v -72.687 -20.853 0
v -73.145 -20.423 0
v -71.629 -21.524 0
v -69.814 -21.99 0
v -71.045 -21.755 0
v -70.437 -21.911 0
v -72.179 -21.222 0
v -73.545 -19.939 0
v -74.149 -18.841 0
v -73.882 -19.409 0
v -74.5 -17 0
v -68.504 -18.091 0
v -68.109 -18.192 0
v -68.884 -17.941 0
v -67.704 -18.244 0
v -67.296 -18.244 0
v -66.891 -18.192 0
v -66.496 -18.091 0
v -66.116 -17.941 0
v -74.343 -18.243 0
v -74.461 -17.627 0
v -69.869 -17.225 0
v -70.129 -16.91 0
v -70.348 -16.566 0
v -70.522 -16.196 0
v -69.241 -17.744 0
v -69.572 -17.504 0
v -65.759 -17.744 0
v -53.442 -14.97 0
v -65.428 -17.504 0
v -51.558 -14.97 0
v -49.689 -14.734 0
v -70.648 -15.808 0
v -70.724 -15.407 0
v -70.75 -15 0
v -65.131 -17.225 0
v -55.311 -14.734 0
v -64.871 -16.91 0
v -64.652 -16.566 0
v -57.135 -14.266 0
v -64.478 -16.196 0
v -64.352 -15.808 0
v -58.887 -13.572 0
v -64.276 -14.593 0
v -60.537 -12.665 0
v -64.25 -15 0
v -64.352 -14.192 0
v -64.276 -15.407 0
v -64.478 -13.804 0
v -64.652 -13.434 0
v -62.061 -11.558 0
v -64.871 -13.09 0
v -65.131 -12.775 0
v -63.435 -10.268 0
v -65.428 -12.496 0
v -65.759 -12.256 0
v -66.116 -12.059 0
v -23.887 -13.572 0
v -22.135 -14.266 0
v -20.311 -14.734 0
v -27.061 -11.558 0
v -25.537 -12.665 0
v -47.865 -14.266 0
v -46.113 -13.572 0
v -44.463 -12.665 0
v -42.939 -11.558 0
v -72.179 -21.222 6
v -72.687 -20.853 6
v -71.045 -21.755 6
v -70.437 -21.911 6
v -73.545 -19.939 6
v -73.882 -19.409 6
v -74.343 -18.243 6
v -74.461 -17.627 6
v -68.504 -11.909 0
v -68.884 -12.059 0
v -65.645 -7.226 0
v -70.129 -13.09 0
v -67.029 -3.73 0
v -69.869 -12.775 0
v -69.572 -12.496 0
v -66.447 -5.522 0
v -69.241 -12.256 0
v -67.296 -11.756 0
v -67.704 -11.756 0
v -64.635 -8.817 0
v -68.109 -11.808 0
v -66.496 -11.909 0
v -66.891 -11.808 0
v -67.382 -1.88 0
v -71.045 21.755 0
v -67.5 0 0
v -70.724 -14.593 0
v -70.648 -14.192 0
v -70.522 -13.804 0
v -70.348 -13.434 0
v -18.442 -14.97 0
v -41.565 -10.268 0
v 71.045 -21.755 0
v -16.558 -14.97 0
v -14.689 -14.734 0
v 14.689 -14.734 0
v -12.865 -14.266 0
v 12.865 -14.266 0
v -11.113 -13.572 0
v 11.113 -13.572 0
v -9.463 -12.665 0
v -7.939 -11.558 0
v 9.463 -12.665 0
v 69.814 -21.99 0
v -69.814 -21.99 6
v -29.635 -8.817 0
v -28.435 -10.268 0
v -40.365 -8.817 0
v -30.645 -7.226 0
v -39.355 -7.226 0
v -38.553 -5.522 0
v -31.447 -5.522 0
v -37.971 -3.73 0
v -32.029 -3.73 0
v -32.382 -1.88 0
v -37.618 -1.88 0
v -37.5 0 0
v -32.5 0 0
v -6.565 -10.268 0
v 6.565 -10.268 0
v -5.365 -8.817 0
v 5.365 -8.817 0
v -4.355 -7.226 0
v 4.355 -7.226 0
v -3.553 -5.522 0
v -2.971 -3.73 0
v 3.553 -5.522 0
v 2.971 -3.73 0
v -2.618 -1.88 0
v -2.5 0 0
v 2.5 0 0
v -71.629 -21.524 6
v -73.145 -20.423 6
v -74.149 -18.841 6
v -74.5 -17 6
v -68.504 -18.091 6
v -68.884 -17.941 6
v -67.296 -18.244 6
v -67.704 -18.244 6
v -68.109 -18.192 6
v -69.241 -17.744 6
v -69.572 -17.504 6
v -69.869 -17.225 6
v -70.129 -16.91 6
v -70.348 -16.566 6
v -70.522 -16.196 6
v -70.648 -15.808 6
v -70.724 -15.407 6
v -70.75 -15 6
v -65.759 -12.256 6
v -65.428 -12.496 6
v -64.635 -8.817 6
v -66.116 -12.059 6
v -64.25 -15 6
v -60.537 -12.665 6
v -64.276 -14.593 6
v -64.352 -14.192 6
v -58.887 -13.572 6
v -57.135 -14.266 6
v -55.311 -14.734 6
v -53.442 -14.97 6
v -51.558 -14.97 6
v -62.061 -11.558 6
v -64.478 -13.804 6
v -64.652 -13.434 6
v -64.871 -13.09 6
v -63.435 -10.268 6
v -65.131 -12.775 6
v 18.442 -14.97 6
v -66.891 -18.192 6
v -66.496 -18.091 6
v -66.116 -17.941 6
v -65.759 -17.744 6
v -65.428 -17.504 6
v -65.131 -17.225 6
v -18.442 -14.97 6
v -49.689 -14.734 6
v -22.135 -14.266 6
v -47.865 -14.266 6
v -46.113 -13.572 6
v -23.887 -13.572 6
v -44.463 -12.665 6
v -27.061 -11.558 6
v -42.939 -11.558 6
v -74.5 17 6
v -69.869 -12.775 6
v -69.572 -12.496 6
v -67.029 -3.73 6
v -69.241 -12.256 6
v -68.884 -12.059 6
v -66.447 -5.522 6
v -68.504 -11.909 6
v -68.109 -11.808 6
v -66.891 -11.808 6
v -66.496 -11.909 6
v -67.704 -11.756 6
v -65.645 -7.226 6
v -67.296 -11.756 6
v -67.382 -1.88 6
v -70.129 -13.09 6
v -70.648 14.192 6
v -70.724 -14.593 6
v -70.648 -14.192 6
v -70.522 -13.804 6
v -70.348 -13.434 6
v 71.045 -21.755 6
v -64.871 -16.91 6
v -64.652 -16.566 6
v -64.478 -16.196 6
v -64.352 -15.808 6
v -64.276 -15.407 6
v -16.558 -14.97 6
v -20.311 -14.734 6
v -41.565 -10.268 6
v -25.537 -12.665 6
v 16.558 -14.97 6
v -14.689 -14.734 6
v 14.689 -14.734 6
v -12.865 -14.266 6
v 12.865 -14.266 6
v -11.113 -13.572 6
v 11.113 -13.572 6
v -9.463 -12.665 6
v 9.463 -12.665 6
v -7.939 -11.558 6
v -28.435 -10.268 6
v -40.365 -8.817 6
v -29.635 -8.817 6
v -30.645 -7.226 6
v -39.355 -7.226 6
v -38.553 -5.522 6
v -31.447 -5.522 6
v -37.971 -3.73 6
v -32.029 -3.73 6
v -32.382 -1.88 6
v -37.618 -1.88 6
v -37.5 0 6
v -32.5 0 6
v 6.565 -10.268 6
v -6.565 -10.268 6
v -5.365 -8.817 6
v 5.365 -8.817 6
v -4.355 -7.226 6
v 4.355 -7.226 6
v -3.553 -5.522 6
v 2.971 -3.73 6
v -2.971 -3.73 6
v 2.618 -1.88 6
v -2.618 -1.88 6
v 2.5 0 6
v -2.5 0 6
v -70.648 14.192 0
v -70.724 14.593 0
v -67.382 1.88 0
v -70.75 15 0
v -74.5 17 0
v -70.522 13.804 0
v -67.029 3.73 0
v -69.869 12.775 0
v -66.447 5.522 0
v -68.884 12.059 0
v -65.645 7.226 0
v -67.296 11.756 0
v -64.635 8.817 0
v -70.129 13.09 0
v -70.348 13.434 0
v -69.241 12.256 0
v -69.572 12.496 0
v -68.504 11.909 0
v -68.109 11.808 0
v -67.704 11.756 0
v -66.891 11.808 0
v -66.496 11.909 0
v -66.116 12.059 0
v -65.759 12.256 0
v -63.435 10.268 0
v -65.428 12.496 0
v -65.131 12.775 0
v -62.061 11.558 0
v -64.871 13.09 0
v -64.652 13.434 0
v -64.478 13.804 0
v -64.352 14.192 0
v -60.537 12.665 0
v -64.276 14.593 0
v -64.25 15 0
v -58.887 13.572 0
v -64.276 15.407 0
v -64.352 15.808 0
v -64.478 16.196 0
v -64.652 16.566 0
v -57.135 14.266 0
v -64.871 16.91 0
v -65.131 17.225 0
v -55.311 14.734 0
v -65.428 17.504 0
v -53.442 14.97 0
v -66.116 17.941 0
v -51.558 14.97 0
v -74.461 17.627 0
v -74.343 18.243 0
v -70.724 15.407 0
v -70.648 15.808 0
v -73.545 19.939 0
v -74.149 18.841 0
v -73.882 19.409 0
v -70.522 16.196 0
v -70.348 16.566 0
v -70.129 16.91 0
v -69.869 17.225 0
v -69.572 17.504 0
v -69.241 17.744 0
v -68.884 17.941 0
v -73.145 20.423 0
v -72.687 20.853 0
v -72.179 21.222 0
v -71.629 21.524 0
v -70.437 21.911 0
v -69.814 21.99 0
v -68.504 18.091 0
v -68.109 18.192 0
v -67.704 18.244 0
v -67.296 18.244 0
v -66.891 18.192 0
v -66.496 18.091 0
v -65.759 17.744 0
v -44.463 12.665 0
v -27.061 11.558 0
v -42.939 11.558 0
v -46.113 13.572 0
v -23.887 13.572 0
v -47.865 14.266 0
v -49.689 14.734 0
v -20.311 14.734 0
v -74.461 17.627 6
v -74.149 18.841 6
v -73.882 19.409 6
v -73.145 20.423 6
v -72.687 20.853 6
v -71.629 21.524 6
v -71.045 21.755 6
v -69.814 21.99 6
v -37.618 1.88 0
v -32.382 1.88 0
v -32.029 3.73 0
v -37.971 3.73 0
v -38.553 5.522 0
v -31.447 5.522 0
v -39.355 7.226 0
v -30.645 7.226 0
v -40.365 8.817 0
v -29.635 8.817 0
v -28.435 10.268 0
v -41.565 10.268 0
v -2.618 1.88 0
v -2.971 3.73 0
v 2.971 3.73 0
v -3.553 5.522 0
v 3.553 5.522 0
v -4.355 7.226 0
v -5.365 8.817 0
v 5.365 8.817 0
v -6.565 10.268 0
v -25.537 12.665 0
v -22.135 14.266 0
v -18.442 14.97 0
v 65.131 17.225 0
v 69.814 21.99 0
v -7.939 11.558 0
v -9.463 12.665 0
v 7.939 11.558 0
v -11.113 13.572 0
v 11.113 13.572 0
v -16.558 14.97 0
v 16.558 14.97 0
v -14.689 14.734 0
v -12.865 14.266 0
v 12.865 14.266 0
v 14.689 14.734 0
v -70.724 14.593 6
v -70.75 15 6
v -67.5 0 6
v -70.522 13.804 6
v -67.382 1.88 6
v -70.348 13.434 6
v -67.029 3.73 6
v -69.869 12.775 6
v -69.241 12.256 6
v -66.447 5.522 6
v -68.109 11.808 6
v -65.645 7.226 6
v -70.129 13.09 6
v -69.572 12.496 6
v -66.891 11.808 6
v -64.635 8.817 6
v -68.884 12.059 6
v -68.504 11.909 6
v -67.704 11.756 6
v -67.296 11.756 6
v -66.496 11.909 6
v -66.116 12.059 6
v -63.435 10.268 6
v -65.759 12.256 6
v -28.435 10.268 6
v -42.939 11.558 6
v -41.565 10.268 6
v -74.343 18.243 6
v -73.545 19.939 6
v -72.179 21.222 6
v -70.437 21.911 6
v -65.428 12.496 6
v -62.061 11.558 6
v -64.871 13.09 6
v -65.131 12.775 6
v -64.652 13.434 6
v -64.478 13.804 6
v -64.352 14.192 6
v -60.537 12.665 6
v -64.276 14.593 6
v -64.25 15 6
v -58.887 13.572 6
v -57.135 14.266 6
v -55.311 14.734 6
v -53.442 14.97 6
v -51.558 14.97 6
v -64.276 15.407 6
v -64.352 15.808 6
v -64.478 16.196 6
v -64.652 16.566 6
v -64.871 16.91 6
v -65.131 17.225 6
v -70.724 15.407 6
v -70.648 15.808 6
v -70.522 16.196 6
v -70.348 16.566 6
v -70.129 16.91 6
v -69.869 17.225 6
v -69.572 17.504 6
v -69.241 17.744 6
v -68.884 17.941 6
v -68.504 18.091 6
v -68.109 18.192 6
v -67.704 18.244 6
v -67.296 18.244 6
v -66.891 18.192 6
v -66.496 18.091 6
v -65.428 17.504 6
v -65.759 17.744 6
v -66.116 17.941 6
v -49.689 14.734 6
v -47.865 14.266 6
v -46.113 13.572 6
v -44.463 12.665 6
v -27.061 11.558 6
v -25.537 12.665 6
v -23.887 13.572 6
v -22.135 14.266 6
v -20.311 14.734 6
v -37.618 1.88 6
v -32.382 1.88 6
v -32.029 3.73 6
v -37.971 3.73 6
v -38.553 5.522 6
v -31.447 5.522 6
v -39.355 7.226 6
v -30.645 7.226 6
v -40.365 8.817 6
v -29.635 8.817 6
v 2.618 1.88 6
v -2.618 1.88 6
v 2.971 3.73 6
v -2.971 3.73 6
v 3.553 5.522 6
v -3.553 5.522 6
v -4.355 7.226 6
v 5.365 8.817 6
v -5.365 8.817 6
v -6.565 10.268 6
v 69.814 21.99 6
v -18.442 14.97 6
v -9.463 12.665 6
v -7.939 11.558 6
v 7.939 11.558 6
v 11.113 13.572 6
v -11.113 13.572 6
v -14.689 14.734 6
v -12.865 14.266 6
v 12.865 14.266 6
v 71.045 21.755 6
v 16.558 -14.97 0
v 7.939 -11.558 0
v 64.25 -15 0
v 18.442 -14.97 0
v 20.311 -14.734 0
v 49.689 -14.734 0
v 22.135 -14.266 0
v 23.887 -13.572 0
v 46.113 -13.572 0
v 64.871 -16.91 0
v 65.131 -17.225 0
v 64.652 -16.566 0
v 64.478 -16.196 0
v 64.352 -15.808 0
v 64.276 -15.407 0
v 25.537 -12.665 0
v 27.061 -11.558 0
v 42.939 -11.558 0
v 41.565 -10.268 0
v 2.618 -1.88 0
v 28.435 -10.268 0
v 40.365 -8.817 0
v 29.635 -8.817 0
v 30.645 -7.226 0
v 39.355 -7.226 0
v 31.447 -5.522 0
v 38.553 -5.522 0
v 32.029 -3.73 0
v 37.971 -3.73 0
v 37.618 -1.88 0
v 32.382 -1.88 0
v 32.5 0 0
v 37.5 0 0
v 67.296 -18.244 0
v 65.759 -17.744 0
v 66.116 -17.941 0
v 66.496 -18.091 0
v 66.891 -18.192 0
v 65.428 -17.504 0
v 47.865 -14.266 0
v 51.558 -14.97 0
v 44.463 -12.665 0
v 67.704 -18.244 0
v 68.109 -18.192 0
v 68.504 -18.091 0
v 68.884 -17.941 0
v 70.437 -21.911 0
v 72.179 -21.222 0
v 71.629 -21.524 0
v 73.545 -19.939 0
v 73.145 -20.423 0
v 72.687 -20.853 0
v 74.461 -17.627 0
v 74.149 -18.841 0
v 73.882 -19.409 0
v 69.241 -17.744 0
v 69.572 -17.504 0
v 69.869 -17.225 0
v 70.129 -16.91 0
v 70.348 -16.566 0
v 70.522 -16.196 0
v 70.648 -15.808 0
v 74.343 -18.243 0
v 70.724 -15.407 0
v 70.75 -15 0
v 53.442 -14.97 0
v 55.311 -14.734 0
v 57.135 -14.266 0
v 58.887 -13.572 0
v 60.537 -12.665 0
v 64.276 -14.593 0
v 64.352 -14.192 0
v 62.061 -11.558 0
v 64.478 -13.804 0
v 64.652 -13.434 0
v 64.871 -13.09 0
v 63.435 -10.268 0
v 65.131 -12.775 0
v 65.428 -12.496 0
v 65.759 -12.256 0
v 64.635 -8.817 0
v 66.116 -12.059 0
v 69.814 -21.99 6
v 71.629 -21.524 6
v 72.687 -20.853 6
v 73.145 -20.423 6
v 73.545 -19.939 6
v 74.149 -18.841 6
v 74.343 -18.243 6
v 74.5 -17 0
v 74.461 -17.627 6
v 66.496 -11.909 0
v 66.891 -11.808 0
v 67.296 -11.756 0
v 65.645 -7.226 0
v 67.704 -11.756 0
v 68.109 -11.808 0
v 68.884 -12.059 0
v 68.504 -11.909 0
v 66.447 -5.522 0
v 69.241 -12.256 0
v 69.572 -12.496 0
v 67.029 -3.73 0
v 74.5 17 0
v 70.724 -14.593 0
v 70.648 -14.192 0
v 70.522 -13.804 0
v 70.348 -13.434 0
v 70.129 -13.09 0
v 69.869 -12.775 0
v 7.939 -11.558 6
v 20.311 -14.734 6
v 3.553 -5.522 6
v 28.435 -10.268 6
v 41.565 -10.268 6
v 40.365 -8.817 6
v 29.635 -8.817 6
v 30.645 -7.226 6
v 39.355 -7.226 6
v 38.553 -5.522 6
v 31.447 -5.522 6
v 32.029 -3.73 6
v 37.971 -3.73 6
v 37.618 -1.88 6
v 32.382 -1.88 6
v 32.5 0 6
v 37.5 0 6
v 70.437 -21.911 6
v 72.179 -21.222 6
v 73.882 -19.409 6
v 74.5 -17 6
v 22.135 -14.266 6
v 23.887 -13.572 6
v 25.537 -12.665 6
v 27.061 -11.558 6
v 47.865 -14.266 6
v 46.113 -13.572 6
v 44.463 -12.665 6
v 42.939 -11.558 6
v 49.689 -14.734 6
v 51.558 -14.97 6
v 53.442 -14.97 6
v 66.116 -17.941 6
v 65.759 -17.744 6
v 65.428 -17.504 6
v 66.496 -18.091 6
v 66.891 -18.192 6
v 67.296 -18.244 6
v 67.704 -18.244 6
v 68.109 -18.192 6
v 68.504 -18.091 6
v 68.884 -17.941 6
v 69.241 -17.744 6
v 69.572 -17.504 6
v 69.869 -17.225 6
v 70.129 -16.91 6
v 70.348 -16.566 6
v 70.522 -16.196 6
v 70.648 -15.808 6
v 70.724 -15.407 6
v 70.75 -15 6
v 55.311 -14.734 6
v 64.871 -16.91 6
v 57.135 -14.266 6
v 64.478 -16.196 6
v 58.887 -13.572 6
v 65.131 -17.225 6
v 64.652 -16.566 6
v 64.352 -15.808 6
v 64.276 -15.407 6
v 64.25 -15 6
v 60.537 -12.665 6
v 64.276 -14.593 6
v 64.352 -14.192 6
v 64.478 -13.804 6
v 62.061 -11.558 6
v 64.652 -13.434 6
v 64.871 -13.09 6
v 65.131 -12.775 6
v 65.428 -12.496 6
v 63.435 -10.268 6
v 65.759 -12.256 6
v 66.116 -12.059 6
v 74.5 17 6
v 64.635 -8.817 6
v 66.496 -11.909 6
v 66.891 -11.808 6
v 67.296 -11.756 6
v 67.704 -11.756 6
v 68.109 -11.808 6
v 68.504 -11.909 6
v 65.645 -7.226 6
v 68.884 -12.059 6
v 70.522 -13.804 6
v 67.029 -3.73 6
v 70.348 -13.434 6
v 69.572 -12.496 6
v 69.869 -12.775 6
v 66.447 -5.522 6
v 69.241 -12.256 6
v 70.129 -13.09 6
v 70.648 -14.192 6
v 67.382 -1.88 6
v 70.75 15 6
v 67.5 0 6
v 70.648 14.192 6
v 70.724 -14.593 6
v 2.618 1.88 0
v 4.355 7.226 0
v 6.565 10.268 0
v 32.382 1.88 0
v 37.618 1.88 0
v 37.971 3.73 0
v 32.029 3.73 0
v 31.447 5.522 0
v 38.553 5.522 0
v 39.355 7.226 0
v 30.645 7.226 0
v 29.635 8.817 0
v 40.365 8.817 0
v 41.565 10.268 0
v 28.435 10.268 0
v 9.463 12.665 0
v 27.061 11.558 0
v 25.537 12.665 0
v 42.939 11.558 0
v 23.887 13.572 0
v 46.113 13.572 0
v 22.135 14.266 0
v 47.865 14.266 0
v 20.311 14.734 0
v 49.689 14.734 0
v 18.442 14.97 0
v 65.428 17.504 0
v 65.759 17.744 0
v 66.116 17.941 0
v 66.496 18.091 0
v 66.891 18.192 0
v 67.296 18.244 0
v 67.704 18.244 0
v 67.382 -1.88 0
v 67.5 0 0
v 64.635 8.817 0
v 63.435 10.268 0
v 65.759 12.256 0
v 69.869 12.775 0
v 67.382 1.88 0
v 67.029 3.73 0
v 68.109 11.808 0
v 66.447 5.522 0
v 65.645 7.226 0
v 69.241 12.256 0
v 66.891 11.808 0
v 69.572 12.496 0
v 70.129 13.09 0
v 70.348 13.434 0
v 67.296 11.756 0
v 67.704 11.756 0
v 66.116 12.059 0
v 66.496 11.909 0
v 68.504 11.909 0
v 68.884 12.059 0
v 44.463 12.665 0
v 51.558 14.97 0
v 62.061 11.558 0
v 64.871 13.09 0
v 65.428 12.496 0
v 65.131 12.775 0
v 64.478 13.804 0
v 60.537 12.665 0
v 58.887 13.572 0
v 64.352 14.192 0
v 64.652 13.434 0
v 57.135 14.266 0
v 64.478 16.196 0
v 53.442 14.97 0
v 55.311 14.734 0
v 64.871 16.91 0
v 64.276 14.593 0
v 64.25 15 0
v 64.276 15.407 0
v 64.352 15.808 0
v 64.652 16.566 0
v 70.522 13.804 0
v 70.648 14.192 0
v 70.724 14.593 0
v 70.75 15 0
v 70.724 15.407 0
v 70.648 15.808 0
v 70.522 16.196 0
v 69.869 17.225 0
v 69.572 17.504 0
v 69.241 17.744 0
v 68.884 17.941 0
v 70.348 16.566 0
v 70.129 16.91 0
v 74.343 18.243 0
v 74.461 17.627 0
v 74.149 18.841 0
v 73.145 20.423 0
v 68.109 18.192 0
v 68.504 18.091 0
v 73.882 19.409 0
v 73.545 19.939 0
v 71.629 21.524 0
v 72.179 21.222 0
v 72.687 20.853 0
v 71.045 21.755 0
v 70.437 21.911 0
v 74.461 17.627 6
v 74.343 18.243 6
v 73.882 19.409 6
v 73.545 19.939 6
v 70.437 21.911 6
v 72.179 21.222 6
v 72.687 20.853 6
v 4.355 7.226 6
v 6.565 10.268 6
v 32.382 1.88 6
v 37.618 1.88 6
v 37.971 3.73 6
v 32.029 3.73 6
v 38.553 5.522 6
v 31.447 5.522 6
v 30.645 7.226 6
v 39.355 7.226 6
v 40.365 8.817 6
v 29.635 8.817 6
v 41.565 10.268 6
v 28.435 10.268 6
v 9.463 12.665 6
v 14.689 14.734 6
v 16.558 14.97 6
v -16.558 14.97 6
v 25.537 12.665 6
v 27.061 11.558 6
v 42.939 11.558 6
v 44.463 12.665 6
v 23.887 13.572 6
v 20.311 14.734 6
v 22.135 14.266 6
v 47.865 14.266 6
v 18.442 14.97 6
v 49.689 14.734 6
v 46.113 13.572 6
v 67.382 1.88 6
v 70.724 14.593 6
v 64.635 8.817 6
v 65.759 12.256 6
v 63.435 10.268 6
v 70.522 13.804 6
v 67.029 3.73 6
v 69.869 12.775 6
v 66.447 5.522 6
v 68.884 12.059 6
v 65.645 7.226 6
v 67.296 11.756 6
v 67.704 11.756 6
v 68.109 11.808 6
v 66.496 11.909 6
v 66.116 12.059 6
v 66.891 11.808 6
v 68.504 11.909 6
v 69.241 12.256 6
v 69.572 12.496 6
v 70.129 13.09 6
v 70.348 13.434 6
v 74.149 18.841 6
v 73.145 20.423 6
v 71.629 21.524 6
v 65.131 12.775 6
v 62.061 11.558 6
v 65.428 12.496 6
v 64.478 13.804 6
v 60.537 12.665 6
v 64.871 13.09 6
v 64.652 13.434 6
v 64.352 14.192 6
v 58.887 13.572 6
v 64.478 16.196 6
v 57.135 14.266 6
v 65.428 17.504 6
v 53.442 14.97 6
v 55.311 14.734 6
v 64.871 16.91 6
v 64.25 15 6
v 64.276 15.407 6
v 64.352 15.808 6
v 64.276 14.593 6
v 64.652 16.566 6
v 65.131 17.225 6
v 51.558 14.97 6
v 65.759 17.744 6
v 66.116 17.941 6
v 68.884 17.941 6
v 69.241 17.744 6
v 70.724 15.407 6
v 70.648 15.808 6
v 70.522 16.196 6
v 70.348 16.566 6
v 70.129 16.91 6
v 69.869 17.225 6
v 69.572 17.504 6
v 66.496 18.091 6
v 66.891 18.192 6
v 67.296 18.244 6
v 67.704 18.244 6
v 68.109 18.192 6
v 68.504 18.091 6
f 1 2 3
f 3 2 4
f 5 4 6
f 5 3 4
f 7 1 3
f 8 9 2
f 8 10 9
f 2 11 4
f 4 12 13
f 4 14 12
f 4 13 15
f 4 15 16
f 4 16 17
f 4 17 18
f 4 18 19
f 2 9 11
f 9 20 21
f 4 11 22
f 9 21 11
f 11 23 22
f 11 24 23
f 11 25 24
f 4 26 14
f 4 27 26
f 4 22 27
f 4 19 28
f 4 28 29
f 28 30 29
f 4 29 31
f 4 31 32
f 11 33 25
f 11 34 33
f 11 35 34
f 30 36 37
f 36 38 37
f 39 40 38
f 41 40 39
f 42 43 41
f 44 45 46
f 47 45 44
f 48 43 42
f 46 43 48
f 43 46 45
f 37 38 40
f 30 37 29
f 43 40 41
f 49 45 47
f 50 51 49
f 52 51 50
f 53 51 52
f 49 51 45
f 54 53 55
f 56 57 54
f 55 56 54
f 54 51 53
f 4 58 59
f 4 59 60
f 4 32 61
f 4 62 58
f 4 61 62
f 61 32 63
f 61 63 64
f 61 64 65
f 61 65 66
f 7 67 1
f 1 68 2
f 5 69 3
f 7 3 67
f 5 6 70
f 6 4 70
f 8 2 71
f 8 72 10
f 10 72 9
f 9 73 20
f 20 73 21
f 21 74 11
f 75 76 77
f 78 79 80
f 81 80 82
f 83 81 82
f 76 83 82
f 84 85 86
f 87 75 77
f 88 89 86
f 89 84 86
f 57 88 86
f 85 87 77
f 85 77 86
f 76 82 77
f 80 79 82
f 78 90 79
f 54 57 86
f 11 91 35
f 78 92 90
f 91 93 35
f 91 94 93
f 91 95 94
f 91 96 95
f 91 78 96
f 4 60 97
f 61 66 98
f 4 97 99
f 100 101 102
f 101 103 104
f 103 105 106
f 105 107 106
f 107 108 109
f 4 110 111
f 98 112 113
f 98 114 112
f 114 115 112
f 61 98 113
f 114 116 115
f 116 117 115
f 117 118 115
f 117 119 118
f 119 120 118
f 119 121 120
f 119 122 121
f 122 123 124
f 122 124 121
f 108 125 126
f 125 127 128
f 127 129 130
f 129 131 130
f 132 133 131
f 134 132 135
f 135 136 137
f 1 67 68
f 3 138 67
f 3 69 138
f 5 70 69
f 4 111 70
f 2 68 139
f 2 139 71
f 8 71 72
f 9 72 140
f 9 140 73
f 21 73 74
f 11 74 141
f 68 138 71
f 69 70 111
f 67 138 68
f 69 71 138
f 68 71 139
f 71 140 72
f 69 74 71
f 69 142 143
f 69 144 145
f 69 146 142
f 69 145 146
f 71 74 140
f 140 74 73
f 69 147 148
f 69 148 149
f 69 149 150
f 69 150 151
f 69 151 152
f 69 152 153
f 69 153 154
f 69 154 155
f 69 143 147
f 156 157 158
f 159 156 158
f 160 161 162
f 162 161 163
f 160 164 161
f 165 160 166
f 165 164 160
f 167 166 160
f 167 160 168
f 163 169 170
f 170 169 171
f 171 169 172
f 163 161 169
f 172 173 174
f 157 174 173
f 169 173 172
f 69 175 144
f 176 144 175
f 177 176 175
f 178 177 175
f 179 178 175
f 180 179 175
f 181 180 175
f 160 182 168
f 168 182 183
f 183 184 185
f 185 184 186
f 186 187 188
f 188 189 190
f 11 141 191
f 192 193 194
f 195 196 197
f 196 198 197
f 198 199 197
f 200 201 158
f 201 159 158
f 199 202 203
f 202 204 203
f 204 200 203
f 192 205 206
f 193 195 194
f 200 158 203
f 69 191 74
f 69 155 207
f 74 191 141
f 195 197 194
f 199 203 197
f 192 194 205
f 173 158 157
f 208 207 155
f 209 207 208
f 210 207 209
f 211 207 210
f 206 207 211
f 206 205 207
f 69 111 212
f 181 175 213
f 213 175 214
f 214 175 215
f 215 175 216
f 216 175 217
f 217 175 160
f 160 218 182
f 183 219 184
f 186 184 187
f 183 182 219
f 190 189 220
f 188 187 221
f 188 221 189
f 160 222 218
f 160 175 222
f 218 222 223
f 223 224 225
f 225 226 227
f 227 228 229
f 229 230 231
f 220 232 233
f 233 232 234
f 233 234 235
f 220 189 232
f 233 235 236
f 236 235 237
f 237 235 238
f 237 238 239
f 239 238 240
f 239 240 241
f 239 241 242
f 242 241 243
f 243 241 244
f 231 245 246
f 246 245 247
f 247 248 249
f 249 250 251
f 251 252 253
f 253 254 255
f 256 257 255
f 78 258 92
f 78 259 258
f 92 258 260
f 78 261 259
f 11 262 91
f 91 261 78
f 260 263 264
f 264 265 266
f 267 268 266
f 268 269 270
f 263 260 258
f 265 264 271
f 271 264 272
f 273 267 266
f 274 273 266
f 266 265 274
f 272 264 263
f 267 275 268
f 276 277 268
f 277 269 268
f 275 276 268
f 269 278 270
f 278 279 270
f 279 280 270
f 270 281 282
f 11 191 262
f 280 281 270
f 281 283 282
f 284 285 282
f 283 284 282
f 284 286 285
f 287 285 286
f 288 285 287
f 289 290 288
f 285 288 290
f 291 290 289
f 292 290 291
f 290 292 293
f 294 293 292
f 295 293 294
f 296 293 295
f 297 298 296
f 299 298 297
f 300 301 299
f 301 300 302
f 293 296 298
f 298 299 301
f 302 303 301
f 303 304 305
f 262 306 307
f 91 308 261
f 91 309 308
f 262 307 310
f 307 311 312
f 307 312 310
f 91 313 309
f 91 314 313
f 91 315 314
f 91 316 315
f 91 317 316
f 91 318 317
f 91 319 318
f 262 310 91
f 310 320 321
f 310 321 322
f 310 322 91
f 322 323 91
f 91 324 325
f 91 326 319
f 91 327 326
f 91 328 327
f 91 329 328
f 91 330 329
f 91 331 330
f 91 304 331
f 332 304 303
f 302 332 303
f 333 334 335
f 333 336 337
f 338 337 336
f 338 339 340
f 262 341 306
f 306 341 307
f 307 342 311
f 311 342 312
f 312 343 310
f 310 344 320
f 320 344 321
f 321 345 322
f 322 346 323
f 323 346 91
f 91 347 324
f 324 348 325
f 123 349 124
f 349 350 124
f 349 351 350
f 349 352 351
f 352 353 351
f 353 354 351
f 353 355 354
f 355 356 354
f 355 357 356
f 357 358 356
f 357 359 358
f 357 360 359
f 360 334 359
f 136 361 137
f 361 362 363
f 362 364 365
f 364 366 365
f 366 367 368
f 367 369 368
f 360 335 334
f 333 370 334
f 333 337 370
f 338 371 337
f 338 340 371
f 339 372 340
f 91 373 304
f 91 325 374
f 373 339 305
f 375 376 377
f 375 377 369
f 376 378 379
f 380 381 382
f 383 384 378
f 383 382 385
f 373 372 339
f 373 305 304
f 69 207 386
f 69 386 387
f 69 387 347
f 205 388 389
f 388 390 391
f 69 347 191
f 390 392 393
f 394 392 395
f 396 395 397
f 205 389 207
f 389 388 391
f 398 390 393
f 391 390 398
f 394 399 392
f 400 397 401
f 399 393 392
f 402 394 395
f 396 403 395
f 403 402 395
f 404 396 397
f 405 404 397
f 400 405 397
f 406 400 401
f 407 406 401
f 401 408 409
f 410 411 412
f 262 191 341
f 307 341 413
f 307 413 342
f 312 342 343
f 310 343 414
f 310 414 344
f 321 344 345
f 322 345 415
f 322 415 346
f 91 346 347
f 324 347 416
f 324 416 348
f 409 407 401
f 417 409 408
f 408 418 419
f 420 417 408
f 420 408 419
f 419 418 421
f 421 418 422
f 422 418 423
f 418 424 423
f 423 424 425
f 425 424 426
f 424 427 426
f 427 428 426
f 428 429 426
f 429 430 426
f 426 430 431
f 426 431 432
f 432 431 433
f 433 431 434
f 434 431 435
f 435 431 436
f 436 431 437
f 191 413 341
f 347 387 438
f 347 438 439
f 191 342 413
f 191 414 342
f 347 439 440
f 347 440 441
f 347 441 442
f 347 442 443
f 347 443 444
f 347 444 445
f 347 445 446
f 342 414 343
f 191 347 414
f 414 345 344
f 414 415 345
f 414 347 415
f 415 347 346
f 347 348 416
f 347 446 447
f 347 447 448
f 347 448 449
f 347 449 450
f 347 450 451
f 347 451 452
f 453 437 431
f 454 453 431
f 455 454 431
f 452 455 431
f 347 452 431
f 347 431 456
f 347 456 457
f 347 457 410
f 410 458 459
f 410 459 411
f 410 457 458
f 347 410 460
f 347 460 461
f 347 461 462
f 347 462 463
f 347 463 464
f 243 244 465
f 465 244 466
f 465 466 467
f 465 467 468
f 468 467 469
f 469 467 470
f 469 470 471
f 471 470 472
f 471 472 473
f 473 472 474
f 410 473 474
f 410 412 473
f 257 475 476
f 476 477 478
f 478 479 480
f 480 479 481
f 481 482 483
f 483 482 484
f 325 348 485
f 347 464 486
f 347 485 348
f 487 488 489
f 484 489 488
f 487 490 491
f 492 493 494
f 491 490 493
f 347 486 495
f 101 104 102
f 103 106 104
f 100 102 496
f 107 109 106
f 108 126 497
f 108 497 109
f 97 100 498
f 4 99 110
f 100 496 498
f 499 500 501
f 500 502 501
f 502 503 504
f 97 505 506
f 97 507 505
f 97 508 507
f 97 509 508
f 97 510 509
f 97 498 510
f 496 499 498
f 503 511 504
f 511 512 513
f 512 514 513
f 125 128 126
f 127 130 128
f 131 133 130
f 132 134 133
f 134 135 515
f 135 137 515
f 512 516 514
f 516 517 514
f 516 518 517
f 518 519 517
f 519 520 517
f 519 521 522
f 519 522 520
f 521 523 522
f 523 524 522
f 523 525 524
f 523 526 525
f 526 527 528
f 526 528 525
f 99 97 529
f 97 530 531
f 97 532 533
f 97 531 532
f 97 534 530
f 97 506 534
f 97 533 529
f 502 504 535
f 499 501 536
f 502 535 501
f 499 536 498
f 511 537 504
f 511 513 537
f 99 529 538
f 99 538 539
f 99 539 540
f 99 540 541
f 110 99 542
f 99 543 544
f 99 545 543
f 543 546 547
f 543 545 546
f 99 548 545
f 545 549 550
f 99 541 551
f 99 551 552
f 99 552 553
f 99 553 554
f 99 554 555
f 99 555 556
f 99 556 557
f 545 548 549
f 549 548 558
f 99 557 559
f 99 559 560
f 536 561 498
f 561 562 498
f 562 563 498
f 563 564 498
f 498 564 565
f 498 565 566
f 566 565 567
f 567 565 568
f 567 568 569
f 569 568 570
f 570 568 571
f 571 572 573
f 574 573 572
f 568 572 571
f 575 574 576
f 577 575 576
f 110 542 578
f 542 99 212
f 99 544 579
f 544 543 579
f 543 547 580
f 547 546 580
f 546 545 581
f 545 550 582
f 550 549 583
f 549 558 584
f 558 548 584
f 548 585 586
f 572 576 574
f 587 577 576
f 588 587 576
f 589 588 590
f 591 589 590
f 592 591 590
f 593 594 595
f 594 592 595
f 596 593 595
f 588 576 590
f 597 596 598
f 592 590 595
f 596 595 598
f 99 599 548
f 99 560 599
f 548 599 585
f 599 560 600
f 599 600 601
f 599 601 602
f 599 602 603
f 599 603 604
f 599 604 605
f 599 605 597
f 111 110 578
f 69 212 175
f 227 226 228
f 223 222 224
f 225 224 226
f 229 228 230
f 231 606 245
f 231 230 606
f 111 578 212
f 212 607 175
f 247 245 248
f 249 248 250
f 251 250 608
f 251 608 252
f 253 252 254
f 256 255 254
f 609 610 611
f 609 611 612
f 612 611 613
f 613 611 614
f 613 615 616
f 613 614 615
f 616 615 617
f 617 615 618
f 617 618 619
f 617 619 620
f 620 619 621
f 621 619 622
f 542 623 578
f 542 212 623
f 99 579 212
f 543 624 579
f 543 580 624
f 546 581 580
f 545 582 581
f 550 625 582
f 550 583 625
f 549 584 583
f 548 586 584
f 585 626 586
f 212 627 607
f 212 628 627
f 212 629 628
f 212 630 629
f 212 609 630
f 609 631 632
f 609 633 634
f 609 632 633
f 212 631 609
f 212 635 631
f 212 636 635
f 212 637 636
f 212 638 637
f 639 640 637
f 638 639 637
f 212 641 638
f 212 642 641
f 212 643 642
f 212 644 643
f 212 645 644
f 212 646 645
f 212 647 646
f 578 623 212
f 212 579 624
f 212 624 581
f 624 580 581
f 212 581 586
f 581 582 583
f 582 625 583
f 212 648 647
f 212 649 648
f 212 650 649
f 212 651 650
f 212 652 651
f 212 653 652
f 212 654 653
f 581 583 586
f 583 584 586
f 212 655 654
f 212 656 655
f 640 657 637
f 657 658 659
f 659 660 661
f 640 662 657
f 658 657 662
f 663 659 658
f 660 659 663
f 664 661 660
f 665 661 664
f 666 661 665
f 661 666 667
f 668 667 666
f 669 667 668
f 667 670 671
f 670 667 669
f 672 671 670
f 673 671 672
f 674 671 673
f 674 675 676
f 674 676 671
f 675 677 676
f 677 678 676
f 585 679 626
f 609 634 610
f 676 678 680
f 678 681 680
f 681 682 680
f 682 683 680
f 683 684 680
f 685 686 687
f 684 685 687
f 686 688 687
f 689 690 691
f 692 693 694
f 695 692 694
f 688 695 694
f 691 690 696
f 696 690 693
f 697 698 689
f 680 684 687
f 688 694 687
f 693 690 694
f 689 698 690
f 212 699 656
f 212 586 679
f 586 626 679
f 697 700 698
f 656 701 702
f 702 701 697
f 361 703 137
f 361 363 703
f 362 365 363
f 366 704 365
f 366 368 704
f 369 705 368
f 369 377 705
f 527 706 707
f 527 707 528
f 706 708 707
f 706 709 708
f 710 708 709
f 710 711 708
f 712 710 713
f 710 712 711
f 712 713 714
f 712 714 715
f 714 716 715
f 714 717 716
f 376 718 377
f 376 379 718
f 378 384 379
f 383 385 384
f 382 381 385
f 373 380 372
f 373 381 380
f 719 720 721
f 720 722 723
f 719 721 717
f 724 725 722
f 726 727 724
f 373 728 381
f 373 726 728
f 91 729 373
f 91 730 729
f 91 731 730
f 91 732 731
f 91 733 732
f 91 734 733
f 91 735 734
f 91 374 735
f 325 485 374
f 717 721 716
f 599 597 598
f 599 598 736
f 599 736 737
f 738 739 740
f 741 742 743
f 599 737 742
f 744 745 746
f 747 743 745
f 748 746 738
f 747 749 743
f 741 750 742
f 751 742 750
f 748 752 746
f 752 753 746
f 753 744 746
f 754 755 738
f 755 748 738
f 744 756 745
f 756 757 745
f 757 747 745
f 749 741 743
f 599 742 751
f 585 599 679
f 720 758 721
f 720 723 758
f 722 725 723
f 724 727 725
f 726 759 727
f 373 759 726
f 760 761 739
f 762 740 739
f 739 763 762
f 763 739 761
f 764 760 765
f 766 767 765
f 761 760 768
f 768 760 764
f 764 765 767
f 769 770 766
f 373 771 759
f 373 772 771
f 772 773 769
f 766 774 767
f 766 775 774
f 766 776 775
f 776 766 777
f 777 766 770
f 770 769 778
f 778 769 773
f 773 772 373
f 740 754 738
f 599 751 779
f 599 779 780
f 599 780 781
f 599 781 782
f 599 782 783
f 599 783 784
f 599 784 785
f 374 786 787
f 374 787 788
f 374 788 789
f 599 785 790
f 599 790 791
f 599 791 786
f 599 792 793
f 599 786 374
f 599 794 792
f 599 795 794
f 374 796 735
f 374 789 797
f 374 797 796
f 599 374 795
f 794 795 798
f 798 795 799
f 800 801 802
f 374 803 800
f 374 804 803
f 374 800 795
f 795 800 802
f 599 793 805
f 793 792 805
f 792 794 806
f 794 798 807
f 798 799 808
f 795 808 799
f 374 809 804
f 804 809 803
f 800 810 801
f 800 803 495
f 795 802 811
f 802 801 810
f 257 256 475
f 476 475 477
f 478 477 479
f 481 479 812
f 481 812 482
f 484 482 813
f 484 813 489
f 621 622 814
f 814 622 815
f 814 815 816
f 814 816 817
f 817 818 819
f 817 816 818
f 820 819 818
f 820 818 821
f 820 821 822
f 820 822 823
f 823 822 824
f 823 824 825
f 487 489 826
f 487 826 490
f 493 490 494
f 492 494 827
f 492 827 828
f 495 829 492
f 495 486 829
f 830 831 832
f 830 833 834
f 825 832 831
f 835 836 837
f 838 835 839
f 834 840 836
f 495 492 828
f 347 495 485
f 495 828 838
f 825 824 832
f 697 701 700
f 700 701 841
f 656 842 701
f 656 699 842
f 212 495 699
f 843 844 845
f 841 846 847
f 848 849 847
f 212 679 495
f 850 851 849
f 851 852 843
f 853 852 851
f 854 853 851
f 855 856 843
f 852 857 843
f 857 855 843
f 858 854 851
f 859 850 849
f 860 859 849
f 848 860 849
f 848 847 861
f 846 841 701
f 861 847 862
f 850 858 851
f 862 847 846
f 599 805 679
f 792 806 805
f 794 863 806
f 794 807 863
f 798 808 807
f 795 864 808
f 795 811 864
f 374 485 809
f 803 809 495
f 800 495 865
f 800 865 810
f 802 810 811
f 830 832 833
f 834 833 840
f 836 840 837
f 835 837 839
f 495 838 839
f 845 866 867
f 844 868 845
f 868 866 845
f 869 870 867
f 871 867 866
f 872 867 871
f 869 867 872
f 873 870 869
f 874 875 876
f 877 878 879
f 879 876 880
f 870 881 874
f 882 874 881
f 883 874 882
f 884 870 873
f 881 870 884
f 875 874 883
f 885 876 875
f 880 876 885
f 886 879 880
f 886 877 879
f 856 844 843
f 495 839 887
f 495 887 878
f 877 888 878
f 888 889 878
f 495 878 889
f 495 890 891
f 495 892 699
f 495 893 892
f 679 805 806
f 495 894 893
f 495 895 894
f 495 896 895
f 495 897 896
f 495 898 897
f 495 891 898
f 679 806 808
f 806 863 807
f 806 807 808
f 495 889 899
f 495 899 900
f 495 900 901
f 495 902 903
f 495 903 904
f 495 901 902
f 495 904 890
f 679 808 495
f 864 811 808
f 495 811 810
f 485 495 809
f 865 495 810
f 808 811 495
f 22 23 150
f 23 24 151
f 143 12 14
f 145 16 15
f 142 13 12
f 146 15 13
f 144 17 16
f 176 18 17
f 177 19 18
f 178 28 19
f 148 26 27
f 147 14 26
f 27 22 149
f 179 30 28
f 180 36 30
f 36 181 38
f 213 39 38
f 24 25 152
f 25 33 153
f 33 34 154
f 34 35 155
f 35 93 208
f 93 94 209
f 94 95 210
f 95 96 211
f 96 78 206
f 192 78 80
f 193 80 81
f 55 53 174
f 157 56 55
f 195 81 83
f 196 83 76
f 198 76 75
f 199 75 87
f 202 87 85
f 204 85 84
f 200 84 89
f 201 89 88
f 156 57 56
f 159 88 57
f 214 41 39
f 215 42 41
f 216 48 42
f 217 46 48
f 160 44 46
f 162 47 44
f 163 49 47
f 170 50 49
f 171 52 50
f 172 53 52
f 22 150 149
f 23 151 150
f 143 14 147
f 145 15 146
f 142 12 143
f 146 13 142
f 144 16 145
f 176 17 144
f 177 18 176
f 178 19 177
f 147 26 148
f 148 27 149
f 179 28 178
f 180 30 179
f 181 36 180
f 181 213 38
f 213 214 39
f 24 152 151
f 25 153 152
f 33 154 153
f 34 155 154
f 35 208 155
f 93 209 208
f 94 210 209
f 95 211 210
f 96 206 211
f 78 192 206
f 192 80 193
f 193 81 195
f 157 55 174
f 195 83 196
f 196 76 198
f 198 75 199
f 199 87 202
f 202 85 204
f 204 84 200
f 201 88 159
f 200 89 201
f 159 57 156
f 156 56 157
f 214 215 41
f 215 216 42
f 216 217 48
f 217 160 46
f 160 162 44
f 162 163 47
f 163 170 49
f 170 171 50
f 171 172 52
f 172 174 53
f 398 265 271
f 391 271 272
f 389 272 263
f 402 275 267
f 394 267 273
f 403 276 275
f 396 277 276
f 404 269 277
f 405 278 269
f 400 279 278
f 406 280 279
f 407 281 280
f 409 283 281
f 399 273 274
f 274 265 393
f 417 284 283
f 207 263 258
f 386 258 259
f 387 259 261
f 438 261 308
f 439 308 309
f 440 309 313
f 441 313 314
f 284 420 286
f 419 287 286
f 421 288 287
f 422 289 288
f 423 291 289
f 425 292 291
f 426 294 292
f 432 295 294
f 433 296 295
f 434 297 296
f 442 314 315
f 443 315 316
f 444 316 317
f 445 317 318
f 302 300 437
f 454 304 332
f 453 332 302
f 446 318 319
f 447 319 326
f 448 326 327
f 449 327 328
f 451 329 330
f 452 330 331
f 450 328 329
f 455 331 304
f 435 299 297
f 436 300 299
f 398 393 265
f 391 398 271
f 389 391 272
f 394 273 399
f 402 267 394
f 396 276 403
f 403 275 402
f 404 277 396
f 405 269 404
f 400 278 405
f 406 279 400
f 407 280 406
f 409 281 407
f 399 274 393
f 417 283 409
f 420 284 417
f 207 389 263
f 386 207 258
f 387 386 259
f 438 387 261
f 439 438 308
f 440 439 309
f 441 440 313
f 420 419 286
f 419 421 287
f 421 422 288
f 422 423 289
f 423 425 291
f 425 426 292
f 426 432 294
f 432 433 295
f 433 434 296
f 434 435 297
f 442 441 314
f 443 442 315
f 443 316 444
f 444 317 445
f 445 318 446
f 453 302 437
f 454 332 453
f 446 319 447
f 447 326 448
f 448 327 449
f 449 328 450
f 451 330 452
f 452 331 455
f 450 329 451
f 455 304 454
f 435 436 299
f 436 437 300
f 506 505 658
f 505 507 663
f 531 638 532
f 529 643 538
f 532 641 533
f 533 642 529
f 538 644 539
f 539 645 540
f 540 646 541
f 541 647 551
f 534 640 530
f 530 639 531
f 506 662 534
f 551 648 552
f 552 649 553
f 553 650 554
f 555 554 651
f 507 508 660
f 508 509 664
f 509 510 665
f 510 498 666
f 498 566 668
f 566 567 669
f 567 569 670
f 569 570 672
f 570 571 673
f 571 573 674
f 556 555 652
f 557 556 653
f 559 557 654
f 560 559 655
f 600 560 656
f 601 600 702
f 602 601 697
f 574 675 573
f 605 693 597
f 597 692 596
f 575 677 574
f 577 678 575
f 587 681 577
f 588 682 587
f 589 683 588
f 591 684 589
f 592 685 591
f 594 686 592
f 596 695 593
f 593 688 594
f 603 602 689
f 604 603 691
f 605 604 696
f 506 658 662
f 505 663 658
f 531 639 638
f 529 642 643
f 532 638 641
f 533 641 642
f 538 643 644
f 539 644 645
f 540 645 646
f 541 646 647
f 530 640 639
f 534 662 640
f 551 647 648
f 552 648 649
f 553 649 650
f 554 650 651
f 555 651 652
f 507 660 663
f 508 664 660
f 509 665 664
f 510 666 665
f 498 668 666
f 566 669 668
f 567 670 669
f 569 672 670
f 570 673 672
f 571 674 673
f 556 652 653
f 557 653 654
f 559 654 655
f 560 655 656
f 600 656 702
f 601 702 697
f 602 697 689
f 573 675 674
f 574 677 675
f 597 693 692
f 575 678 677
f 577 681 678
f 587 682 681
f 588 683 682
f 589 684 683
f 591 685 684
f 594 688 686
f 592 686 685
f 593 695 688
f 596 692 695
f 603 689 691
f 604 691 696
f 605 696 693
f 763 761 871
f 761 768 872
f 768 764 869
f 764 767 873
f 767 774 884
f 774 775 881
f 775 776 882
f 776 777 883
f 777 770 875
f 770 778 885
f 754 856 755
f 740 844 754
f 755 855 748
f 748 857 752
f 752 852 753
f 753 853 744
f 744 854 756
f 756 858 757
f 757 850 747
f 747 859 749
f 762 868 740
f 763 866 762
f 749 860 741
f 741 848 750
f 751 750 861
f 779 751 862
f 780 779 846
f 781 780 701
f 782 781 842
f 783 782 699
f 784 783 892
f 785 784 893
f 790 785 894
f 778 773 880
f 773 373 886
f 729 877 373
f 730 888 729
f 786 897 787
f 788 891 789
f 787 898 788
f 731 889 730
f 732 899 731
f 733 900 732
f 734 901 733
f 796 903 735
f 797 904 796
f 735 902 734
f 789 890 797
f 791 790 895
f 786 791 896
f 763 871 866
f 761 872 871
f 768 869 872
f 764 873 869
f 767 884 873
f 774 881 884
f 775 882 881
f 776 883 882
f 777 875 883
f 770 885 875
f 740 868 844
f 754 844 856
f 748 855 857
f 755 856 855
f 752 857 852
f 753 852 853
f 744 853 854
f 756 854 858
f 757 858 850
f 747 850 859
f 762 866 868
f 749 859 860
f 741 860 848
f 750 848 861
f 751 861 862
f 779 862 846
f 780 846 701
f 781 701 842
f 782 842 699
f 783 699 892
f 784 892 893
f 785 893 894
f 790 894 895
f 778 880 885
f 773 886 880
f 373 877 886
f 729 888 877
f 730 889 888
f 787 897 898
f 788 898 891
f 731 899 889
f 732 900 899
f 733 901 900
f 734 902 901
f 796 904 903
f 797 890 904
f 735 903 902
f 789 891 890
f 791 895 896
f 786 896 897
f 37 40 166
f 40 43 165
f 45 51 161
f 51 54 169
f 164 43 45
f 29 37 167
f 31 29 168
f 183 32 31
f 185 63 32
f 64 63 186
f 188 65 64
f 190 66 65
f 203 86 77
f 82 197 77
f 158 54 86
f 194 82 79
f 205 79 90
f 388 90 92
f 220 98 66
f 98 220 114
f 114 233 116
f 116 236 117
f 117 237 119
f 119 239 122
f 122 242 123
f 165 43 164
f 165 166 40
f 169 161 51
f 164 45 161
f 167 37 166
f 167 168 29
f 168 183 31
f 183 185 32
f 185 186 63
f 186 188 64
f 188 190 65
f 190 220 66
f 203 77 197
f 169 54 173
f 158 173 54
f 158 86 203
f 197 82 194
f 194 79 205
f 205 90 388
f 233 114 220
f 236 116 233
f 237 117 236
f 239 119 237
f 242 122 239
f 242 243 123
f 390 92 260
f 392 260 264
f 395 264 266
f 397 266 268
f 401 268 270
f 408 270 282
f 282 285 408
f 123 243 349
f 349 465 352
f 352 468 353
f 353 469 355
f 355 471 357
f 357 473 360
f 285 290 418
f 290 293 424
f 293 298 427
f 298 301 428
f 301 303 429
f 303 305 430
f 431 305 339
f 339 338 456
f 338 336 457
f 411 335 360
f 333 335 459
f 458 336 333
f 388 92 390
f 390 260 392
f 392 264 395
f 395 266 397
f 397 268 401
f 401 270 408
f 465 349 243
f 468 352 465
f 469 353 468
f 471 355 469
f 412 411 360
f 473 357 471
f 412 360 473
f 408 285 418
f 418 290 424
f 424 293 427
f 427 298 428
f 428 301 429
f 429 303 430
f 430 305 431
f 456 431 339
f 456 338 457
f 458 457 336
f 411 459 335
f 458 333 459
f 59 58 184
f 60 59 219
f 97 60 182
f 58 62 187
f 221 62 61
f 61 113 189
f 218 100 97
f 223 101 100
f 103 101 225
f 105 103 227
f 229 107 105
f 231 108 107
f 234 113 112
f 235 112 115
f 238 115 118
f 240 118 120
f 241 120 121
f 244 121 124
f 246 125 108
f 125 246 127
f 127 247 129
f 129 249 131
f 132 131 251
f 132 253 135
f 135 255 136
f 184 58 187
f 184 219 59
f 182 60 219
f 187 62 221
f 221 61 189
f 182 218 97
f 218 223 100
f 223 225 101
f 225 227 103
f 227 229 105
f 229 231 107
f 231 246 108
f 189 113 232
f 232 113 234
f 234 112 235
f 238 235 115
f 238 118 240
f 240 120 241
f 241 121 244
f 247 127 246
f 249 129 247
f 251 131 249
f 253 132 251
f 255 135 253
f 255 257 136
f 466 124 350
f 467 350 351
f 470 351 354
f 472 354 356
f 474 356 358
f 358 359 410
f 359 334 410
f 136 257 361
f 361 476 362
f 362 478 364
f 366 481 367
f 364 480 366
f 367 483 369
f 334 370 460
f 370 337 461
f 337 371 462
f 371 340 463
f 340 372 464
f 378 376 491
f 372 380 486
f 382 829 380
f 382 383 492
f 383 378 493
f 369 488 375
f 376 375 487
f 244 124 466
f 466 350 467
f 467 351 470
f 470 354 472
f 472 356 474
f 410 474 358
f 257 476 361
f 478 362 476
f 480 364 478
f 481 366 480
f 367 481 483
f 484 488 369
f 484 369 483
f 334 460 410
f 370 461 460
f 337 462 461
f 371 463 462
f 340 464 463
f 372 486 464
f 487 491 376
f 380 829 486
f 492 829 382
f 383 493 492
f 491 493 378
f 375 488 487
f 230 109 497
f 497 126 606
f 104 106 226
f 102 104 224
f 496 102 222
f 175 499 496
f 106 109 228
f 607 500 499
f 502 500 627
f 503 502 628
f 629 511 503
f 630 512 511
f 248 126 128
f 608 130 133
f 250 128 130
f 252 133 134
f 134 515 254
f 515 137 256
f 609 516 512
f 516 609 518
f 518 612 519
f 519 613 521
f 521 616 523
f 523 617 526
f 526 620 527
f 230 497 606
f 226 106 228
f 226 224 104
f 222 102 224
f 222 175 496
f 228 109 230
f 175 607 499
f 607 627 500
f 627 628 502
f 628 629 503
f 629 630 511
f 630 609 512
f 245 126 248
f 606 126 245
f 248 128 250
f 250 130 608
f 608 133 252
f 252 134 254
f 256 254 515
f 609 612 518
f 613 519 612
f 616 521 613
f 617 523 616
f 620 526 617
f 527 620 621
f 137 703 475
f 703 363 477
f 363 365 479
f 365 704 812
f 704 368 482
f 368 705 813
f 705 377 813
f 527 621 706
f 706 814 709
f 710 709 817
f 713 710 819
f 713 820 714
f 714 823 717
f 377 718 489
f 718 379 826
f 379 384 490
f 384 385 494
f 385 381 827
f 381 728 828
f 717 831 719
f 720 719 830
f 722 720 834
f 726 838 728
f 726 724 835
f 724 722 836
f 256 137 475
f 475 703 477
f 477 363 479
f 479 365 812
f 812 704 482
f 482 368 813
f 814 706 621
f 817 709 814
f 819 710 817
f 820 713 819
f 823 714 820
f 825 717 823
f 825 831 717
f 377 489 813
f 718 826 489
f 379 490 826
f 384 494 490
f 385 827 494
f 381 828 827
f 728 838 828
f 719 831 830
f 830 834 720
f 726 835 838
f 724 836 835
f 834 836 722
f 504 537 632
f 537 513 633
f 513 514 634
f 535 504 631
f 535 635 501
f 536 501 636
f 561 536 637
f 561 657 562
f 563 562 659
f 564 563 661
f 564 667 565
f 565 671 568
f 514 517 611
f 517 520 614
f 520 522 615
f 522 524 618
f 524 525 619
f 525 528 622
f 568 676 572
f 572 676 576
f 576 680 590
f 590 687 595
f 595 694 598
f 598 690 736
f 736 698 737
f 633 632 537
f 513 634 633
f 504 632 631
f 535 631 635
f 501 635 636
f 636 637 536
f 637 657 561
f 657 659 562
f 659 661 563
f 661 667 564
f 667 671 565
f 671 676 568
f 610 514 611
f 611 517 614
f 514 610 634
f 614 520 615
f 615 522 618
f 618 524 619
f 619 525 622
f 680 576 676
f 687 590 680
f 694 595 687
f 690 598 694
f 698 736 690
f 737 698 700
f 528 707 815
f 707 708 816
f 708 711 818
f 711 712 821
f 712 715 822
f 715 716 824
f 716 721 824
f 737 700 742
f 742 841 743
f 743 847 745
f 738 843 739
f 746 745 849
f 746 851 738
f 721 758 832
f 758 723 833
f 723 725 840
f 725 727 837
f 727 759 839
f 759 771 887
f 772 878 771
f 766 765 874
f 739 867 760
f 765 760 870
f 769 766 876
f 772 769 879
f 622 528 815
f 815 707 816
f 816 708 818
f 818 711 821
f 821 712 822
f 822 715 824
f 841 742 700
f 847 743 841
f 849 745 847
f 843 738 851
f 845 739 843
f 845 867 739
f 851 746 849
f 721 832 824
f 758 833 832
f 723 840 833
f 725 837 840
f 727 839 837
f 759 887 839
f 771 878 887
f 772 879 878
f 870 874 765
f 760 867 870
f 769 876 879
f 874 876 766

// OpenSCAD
$fn = 50;

difference() {
	union() {
		hull() {
			translate(v = [-69.5, 17.0, 0]) {
				cylinder(h = 6, r = 5);
			}
			translate(v = [69.5, 17.0, 0]) {
				cylinder(h = 6, r = 5);
			}
			translate(v = [-69.5, -17.0, 0]) {
				cylinder(h = 6, r = 5);
			}
			translate(v = [69.5, -17.0, 0]) {
				cylinder(h = 6, r = 5);
			}
		}
	}
	union() {
		translate(v = [-67.5, -15.0, -100.0]) {
			cylinder(h = 200, r = 3.25);
		}
		translate(v = [-67.5, 15.0, -100.0]) {
			cylinder(h = 200, r = 3.25);
		}
		translate(v = [67.5, -15.0, -100.0]) {
			cylinder(h = 200, r = 3.25);
		}
		translate(v = [67.5, 15.0, -100.0]) {
			cylinder(h = 200, r = 3.25);
		}
		translate(v = [-67.5, -15.0, -100.0]) {
			cylinder(h = 200, r = 1.8);
		}
		translate(v = [-67.5, 15.0, -100.0]) {
			cylinder(h = 200, r = 1.8);
		}
		translate(v = [67.5, -15.0, -100.0]) {
			cylinder(h = 200, r = 1.8);
		}
		translate(v = [67.5, 15.0, -100.0]) {
			cylinder(h = 200, r = 1.8);
		}
		translate(v = [-52.5, 0, 0.0]) {
			cylinder(h = 6, r = 15.0);
		}
		translate(v = [-17.5, 0, 0.0]) {
			cylinder(h = 6, r = 15.0);
		}
		translate(v = [17.5, 0, 0.0]) {
			cylinder(h = 6, r = 15.0);
		}
		translate(v = [52.5, 0, 0.0]) {
			cylinder(h = 6, r = 15.0);
		}
	}
}
